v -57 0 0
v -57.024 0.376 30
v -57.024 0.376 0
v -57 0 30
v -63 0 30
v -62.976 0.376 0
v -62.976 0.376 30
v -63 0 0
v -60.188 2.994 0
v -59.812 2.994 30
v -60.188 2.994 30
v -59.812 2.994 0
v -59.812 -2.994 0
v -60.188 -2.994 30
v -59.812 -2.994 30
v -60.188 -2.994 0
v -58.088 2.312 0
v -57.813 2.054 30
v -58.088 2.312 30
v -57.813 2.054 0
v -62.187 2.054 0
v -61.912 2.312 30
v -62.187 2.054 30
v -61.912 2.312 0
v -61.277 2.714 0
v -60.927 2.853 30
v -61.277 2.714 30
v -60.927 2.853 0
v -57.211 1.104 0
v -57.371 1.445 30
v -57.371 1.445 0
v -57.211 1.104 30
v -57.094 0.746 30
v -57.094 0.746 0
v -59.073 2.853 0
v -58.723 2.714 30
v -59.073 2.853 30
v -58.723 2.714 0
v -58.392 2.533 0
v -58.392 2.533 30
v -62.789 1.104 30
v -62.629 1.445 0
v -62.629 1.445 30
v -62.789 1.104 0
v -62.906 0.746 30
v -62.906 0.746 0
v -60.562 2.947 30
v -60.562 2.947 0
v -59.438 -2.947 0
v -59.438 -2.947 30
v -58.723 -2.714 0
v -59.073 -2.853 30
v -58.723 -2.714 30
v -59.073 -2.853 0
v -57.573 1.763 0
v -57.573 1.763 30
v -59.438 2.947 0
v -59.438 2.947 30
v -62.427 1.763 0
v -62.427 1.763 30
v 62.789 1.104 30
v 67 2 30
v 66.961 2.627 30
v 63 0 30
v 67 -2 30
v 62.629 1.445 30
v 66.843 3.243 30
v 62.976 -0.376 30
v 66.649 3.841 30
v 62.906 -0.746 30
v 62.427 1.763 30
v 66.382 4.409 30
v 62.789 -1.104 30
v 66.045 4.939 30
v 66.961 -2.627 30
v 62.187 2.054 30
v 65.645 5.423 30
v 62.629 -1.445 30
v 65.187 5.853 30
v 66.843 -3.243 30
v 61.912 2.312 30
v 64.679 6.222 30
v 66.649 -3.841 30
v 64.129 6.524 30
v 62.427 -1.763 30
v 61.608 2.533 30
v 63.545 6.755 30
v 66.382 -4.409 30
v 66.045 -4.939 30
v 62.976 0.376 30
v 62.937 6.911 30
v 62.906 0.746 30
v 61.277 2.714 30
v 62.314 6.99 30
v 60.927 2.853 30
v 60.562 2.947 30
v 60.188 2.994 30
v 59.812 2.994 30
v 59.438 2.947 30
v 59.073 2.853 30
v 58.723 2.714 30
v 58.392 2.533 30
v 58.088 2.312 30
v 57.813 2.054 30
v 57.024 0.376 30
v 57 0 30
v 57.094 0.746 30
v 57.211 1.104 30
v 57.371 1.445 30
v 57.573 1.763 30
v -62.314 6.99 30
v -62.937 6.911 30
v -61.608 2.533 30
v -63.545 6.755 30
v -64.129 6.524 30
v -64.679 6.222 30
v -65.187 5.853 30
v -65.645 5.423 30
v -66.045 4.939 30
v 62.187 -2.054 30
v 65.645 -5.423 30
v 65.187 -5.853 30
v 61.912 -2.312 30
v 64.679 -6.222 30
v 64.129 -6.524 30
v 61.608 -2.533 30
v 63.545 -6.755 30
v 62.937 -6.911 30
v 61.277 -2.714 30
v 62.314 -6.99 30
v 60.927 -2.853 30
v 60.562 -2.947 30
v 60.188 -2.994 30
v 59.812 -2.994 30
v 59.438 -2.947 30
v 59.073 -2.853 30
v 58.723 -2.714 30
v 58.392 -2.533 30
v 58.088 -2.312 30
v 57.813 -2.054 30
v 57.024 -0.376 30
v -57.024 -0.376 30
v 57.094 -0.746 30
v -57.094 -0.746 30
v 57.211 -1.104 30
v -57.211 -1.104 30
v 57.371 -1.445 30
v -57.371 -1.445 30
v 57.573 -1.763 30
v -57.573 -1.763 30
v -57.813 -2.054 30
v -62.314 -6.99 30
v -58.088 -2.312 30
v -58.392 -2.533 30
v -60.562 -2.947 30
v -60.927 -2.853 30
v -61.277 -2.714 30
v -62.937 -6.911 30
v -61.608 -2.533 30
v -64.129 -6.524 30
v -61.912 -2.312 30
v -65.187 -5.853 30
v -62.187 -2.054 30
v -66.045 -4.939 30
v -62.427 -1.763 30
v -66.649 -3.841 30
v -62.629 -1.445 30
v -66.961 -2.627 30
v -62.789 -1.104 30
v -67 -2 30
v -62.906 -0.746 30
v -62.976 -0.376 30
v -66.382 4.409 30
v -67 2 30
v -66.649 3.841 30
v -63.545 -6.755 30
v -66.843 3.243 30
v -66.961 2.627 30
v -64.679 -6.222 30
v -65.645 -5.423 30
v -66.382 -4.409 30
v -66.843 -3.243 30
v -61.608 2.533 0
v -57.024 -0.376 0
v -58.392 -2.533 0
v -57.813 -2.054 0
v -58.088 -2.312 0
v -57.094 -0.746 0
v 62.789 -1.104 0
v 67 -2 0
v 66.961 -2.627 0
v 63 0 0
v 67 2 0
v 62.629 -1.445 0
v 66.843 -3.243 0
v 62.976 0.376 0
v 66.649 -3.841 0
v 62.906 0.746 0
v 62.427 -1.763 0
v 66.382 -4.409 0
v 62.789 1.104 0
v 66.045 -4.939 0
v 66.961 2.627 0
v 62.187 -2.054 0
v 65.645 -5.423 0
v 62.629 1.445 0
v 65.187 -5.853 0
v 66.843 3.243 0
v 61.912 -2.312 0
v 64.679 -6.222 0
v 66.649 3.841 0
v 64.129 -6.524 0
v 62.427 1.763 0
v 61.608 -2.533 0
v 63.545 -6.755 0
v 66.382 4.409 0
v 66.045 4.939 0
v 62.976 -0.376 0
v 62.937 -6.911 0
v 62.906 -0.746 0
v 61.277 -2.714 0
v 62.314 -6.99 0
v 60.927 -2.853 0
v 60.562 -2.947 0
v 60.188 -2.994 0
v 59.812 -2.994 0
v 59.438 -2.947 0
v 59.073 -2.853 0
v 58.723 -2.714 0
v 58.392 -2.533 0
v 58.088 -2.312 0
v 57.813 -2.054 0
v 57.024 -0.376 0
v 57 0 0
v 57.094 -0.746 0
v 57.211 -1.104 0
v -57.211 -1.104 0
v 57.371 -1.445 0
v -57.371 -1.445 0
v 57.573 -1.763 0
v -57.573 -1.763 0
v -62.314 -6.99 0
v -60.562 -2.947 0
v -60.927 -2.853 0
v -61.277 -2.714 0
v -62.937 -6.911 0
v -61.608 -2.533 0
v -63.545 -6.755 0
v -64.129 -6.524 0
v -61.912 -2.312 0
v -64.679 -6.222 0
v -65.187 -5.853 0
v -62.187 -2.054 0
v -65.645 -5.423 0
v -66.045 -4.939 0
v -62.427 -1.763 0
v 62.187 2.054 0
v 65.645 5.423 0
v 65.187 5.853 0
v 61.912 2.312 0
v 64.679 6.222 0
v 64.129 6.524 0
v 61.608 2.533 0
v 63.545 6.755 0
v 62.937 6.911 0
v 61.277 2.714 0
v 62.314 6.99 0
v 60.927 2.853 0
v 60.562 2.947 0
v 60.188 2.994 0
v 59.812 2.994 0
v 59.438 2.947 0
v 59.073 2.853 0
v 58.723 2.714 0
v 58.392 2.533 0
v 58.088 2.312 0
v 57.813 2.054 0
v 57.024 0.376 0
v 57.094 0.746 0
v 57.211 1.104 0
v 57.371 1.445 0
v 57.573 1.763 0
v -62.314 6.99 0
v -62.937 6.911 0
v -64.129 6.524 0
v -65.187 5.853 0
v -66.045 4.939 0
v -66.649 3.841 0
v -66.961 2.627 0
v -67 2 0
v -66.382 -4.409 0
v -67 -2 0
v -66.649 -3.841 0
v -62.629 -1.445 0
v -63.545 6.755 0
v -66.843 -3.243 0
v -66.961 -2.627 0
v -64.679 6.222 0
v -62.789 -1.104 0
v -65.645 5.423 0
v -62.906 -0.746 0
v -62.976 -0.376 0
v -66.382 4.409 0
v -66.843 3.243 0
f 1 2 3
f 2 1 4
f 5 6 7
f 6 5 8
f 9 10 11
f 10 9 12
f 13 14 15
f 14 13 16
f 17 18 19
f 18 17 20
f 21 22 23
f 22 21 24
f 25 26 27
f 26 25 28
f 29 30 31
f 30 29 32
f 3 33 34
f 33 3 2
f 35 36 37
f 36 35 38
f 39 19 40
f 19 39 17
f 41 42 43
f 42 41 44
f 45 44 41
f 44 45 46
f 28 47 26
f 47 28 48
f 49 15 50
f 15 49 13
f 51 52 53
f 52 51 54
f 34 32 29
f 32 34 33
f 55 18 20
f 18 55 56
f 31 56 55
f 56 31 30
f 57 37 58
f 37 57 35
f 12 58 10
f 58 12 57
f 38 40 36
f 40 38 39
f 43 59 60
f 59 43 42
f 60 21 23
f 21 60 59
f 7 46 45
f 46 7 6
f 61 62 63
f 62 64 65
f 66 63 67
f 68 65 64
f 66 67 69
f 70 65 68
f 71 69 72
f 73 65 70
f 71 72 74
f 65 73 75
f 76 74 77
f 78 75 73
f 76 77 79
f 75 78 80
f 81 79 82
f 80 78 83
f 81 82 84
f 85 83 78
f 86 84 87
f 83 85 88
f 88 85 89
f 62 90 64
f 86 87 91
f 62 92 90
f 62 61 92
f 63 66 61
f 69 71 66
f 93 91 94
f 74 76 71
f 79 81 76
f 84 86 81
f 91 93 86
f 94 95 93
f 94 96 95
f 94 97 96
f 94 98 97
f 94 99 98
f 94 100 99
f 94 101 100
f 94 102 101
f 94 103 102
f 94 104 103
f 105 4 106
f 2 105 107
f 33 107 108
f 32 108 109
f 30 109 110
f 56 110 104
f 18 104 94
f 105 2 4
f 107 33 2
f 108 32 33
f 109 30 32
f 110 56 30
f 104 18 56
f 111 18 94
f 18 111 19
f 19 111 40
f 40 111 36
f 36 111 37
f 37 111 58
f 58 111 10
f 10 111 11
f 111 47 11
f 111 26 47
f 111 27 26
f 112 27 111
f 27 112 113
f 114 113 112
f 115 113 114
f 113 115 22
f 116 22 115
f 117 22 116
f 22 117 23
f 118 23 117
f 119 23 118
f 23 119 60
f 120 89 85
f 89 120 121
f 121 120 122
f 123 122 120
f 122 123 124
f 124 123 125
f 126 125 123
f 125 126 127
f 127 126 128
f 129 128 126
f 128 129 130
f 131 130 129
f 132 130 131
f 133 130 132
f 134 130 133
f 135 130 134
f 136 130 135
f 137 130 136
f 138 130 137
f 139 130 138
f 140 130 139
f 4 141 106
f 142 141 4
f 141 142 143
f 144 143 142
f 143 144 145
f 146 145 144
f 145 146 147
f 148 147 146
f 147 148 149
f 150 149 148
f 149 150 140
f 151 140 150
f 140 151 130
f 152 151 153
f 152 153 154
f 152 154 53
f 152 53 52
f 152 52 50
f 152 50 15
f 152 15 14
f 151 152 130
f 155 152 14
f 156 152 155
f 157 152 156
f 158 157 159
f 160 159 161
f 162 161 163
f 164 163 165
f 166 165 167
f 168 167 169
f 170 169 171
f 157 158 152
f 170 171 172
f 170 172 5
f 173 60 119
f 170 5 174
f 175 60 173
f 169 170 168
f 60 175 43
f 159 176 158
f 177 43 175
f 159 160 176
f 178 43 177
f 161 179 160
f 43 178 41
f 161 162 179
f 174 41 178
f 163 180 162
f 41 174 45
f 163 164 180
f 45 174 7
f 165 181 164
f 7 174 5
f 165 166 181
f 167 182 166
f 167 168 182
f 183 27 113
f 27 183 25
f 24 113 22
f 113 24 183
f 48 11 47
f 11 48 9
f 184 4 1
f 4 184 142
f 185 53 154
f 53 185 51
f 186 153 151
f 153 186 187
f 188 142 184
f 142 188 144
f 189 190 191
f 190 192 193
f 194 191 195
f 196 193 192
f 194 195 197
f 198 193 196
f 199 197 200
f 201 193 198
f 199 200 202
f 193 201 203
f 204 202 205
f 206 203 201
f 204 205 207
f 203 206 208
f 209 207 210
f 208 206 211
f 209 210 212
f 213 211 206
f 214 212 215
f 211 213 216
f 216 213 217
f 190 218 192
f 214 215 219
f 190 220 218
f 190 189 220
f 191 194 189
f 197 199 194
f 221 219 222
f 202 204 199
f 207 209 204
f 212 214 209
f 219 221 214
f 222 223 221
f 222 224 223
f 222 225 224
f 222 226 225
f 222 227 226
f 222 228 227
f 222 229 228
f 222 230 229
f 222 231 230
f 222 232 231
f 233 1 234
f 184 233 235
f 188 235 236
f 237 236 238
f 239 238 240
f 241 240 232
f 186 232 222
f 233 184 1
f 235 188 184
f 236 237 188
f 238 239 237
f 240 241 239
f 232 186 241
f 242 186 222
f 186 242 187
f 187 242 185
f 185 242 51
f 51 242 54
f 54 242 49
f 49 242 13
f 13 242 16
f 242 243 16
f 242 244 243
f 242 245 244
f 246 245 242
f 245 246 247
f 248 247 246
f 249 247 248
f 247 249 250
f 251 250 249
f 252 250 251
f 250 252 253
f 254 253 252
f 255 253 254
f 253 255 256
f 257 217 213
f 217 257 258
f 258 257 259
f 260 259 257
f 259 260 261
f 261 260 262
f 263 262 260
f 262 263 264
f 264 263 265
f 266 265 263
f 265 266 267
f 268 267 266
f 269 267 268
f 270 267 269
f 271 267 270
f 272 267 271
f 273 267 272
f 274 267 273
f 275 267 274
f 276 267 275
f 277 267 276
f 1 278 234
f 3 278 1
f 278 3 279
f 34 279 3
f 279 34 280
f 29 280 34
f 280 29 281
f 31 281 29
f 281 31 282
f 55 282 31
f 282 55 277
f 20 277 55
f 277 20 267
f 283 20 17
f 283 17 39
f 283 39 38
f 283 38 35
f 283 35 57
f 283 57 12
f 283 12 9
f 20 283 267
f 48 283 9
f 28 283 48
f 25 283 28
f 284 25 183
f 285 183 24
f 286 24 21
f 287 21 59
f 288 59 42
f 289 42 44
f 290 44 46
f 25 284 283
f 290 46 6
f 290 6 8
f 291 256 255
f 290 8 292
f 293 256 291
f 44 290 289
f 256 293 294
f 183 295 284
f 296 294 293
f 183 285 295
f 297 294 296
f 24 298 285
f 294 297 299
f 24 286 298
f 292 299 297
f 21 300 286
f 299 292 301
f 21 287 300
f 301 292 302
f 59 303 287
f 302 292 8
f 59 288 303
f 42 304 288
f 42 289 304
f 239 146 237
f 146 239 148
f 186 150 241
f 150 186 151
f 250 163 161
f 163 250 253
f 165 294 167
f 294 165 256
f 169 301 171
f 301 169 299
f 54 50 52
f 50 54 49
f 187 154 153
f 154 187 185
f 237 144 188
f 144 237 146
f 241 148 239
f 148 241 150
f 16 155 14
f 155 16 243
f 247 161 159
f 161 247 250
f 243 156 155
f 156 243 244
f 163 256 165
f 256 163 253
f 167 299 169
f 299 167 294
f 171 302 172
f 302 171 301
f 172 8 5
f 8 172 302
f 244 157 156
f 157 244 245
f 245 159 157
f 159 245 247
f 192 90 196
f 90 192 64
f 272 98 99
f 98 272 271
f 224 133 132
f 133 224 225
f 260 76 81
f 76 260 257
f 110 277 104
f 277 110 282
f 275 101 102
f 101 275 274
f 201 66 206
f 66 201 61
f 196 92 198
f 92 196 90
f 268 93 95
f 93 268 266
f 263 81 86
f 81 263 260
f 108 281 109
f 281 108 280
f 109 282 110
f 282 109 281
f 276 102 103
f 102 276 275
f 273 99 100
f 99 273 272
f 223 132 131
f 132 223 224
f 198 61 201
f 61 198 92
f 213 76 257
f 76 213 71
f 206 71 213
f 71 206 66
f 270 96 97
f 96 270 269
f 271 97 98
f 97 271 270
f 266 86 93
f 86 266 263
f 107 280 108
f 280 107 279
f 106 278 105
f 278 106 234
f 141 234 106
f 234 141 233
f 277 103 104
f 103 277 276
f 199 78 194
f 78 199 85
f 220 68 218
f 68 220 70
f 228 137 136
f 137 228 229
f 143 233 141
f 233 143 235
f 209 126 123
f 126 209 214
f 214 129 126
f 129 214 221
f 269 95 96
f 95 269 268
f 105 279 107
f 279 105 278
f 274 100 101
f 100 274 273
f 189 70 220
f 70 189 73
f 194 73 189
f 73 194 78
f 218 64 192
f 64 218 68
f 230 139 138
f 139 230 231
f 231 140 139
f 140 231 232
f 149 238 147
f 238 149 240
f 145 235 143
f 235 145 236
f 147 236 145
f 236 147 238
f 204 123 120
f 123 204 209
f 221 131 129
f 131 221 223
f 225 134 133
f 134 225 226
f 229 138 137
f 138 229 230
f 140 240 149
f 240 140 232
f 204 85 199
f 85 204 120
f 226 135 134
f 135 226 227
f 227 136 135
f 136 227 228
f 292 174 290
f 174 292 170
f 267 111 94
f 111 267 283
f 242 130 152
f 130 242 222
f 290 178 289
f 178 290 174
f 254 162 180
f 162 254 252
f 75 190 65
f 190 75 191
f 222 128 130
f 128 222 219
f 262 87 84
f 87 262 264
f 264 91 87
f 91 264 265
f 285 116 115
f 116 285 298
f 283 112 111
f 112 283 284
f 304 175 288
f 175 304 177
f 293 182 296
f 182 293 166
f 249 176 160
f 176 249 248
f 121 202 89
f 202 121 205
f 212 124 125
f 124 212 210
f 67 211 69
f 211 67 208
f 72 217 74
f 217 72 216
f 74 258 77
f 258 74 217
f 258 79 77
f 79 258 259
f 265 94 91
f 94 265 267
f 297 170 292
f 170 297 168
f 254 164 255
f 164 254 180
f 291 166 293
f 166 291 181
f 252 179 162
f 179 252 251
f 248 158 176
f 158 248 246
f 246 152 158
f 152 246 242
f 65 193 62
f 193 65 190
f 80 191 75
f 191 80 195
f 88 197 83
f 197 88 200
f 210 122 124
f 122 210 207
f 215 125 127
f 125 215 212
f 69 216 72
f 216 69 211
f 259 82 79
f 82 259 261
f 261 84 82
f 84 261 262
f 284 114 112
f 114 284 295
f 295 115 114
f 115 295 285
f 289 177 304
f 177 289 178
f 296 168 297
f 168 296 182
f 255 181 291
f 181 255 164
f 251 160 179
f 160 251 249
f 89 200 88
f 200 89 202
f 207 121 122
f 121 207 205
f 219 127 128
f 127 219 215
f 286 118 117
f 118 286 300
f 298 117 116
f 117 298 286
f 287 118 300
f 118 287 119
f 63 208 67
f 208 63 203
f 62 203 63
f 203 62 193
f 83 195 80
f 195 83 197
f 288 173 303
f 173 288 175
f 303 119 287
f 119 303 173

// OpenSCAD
$fn = 50;


difference() {
	union() {
		hull() {
			translate(v = [-62.0000000000, 2.0000000000, 0]) {
				cylinder(h = 30, r = 5);
			}
			translate(v = [62.0000000000, 2.0000000000, 0]) {
				cylinder(h = 30, r = 5);
			}
			translate(v = [-62.0000000000, -2.0000000000, 0]) {
				cylinder(h = 30, r = 5);
			}
			translate(v = [62.0000000000, -2.0000000000, 0]) {
				cylinder(h = 30, r = 5);
			}
		}
	}
	union() {
		translate(v = [-60.0000000000, 0.0000000000, -100.0000000000]) {
			cylinder(h = 200, r = 3.0000000000);
		}
		translate(v = [-60.0000000000, 0.0000000000, -100.0000000000]) {
			cylinder(h = 200, r = 3.0000000000);
		}
		translate(v = [60.0000000000, 0.0000000000, -100.0000000000]) {
			cylinder(h = 200, r = 3.0000000000);
		}
		translate(v = [60.0000000000, 0.0000000000, -100.0000000000]) {
			cylinder(h = 200, r = 3.0000000000);
		}
	}
}
